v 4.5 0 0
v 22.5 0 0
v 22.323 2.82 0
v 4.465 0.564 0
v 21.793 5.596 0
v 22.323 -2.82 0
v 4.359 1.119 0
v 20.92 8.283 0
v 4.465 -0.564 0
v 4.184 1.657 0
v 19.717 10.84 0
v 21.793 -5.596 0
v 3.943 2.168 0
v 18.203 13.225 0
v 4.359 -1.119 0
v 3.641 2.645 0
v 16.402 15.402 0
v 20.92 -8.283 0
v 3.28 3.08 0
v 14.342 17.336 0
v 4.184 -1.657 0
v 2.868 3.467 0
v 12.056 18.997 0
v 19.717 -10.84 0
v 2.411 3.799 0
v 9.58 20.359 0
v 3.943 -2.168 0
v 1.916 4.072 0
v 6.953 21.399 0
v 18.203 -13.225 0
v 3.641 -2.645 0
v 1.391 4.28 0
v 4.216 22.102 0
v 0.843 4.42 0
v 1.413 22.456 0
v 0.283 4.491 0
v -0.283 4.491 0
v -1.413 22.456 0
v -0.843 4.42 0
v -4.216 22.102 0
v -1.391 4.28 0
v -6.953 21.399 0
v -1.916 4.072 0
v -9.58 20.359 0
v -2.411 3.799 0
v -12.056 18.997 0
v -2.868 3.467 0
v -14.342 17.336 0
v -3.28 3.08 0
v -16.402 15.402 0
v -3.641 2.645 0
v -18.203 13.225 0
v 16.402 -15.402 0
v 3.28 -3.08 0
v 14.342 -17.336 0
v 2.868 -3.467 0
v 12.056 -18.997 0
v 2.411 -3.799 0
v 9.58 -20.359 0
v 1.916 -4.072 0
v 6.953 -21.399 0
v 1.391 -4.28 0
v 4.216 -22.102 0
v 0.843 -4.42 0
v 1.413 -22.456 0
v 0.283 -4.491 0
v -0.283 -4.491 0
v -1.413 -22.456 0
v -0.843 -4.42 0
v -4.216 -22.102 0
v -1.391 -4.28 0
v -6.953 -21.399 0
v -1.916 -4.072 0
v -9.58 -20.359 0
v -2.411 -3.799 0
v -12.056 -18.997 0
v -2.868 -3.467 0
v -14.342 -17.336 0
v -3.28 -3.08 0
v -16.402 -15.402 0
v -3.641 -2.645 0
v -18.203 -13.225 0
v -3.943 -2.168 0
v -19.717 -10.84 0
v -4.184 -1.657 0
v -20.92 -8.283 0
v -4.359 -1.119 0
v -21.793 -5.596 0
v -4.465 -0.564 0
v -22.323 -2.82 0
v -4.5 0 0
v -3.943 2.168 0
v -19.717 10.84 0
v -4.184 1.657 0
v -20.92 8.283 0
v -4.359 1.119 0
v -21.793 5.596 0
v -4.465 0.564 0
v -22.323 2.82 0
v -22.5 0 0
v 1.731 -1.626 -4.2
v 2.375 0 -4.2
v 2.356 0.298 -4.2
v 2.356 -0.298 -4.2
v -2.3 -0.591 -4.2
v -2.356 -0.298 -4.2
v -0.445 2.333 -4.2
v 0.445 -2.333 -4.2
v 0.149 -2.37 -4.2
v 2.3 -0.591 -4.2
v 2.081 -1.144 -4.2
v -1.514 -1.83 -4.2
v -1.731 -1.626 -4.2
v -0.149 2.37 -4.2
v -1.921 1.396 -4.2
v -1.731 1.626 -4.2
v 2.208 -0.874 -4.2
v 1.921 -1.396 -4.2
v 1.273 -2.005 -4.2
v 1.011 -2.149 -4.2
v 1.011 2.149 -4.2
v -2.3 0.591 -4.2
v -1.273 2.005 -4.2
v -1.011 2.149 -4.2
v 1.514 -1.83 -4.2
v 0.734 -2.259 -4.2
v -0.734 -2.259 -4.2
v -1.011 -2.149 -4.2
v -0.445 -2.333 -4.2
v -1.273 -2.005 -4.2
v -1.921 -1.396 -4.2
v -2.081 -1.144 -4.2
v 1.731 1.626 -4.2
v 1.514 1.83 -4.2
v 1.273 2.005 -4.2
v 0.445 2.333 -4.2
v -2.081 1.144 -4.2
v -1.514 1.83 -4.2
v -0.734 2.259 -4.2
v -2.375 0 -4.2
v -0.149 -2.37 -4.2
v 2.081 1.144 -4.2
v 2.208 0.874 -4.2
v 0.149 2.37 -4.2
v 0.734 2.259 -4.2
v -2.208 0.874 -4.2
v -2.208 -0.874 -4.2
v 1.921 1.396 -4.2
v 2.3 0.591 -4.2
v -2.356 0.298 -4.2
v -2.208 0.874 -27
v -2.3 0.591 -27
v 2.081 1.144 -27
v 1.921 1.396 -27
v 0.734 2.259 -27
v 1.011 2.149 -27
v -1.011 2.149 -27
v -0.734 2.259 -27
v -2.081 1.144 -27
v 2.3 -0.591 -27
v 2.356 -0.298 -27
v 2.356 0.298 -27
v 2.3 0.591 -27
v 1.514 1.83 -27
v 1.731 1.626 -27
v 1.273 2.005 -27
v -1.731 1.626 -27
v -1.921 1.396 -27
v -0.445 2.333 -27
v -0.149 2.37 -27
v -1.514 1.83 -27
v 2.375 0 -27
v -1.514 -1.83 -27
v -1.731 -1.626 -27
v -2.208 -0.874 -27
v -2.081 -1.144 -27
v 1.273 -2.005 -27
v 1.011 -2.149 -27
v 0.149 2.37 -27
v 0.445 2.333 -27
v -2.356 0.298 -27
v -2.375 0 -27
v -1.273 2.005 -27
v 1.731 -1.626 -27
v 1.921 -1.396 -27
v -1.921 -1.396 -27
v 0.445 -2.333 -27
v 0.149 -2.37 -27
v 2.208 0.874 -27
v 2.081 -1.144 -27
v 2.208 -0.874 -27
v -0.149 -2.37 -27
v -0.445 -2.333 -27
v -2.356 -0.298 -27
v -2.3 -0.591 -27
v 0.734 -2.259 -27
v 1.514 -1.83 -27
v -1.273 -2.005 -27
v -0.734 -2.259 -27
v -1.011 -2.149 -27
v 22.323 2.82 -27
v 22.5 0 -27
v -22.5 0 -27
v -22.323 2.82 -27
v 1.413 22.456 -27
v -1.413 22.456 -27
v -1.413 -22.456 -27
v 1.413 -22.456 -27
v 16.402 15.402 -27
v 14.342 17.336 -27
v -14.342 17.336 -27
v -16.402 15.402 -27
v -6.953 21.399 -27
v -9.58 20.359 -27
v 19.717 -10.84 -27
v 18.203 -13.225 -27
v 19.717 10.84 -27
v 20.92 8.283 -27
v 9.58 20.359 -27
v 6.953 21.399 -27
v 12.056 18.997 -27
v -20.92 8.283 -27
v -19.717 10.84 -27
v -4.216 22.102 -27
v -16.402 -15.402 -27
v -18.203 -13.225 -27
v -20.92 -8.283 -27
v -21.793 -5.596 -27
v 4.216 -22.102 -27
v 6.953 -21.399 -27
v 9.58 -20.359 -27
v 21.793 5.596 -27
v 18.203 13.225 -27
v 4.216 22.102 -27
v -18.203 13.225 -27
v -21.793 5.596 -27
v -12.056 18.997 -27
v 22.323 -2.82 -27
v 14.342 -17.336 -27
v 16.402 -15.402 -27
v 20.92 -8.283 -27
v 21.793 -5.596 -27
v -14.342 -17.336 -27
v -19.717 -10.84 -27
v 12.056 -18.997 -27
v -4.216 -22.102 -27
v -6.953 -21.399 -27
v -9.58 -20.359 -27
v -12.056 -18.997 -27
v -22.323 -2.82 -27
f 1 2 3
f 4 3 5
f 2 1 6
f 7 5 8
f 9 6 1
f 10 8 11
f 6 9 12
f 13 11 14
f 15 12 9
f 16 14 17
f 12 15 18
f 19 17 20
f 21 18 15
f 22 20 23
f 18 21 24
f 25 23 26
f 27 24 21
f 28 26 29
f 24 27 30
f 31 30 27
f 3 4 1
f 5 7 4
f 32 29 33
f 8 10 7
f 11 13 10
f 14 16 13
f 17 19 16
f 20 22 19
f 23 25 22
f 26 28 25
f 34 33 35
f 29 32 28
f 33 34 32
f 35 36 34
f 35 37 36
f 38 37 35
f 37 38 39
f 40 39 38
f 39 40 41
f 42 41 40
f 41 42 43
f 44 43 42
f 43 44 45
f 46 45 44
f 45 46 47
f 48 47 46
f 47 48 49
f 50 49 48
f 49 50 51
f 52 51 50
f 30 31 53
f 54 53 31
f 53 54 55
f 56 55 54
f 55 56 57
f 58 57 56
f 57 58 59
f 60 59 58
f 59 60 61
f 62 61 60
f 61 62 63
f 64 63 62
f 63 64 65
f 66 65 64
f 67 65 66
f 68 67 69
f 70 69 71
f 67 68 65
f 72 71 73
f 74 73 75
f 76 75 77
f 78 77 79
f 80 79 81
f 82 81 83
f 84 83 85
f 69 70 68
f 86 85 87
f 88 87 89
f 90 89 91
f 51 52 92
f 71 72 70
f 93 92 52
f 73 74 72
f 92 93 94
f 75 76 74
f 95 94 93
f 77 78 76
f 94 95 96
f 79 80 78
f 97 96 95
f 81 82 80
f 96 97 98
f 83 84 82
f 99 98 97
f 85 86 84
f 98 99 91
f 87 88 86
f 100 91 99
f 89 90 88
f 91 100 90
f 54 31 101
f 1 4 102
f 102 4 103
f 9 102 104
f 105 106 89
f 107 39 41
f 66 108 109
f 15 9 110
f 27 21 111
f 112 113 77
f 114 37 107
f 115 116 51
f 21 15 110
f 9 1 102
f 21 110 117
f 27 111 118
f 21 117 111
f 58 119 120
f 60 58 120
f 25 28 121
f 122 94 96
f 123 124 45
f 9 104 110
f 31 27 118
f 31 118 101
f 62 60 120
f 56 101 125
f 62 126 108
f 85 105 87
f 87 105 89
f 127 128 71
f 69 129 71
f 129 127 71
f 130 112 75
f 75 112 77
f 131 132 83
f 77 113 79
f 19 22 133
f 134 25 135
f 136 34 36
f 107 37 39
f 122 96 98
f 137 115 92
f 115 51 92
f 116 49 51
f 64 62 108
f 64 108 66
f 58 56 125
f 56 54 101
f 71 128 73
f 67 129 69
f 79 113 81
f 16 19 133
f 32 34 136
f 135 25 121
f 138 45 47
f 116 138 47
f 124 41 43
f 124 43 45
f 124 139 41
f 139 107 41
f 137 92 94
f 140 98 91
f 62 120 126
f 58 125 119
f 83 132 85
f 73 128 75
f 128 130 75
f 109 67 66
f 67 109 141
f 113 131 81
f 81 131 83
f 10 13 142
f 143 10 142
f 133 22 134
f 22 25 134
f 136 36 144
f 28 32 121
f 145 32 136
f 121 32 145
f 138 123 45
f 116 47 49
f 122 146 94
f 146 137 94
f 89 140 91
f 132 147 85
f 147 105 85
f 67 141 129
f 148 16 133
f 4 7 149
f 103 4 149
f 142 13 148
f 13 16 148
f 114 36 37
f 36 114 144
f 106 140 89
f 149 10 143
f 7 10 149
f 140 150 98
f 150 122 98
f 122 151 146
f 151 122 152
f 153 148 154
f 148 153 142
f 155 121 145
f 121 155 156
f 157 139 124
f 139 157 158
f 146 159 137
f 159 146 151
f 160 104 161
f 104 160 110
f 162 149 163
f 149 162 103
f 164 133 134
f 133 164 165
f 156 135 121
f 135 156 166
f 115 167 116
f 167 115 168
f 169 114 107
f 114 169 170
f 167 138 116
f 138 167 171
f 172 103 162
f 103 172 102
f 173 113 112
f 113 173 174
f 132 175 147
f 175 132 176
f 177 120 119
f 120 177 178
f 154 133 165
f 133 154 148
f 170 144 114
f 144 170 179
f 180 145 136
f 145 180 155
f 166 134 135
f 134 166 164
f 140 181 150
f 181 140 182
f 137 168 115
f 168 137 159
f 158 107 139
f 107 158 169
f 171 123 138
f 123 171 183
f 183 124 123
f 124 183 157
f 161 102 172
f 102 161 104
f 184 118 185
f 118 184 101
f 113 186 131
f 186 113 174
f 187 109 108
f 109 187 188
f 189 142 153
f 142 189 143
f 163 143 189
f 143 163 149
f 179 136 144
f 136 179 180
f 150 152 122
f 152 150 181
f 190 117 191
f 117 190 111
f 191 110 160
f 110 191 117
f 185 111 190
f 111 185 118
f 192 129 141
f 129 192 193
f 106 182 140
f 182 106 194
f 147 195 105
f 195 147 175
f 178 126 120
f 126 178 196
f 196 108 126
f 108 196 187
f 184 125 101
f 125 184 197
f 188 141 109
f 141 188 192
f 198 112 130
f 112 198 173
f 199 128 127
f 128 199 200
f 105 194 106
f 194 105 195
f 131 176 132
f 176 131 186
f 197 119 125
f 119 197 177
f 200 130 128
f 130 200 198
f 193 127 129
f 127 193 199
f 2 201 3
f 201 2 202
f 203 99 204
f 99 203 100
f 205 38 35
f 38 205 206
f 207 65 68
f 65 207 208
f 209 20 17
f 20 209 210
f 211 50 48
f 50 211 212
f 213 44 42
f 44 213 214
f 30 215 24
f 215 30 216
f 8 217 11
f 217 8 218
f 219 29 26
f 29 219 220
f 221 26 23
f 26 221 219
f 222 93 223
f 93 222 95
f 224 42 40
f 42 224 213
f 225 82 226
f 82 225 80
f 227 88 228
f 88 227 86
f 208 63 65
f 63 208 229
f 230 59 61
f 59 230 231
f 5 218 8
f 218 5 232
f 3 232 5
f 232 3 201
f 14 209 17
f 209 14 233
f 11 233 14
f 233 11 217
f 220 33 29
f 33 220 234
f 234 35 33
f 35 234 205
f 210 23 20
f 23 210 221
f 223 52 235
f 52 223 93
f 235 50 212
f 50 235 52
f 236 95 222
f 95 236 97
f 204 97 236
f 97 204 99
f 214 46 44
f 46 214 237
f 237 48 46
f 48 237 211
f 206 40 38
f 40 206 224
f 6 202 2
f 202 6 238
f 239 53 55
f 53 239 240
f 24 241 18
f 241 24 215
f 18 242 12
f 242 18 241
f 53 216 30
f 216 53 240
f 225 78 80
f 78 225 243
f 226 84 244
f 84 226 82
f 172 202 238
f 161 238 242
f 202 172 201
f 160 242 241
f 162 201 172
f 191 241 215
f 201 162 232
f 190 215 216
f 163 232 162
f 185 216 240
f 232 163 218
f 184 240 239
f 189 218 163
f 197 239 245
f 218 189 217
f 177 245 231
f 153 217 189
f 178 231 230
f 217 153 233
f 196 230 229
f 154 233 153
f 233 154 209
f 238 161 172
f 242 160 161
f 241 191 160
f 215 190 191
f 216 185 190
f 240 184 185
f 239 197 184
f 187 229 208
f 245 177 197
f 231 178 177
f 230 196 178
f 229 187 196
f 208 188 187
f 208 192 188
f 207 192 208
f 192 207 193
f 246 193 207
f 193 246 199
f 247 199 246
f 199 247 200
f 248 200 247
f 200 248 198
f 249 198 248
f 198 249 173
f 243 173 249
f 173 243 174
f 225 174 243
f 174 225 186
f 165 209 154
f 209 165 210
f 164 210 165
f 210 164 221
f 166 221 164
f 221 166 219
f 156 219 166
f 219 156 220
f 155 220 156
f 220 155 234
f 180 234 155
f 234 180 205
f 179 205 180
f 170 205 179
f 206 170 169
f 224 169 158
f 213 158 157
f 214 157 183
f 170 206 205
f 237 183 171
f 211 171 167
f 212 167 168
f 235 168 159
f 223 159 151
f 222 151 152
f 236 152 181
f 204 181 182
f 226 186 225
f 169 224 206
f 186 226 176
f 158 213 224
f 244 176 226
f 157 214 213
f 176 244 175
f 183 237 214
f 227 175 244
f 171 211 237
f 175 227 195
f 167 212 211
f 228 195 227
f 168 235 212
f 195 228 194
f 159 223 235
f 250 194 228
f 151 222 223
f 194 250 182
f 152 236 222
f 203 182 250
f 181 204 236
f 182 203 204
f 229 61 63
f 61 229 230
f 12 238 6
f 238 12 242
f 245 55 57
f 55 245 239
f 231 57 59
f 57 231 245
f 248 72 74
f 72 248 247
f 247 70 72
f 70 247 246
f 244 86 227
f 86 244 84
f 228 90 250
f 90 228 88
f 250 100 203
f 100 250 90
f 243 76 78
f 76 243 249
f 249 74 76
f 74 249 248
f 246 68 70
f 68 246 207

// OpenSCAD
$fn = 50;


difference() {
	union() {
		translate(v = [0, 0, -27.0000000000]) {
			cylinder(h = 27, r = 22.5000000000);
		}
	}
	union() {
		translate(v = [0, 0, 0]) {
			rotate(a = [0, 0, 0]) {
				difference() {
					union() {
						translate(v = [0, 0, -30.0000000000]) {
							cylinder(h = 30, r = 2.2500000000);
						}
						translate(v = [0, 0, -4.2000000000]) {
							cylinder(h = 4.2000000000, r1 = 2.3750000000, r2 = 4.5000000000);
						}
						translate(v = [0, 0, -30.0000000000]) {
							cylinder(h = 30, r = 2.3750000000);
						}
						translate(v = [0, 0, -30.0000000000]) {
							cylinder(h = 30, r = 2.2500000000);
						}
					}
					union();
				}
			}
		}
	}
}
